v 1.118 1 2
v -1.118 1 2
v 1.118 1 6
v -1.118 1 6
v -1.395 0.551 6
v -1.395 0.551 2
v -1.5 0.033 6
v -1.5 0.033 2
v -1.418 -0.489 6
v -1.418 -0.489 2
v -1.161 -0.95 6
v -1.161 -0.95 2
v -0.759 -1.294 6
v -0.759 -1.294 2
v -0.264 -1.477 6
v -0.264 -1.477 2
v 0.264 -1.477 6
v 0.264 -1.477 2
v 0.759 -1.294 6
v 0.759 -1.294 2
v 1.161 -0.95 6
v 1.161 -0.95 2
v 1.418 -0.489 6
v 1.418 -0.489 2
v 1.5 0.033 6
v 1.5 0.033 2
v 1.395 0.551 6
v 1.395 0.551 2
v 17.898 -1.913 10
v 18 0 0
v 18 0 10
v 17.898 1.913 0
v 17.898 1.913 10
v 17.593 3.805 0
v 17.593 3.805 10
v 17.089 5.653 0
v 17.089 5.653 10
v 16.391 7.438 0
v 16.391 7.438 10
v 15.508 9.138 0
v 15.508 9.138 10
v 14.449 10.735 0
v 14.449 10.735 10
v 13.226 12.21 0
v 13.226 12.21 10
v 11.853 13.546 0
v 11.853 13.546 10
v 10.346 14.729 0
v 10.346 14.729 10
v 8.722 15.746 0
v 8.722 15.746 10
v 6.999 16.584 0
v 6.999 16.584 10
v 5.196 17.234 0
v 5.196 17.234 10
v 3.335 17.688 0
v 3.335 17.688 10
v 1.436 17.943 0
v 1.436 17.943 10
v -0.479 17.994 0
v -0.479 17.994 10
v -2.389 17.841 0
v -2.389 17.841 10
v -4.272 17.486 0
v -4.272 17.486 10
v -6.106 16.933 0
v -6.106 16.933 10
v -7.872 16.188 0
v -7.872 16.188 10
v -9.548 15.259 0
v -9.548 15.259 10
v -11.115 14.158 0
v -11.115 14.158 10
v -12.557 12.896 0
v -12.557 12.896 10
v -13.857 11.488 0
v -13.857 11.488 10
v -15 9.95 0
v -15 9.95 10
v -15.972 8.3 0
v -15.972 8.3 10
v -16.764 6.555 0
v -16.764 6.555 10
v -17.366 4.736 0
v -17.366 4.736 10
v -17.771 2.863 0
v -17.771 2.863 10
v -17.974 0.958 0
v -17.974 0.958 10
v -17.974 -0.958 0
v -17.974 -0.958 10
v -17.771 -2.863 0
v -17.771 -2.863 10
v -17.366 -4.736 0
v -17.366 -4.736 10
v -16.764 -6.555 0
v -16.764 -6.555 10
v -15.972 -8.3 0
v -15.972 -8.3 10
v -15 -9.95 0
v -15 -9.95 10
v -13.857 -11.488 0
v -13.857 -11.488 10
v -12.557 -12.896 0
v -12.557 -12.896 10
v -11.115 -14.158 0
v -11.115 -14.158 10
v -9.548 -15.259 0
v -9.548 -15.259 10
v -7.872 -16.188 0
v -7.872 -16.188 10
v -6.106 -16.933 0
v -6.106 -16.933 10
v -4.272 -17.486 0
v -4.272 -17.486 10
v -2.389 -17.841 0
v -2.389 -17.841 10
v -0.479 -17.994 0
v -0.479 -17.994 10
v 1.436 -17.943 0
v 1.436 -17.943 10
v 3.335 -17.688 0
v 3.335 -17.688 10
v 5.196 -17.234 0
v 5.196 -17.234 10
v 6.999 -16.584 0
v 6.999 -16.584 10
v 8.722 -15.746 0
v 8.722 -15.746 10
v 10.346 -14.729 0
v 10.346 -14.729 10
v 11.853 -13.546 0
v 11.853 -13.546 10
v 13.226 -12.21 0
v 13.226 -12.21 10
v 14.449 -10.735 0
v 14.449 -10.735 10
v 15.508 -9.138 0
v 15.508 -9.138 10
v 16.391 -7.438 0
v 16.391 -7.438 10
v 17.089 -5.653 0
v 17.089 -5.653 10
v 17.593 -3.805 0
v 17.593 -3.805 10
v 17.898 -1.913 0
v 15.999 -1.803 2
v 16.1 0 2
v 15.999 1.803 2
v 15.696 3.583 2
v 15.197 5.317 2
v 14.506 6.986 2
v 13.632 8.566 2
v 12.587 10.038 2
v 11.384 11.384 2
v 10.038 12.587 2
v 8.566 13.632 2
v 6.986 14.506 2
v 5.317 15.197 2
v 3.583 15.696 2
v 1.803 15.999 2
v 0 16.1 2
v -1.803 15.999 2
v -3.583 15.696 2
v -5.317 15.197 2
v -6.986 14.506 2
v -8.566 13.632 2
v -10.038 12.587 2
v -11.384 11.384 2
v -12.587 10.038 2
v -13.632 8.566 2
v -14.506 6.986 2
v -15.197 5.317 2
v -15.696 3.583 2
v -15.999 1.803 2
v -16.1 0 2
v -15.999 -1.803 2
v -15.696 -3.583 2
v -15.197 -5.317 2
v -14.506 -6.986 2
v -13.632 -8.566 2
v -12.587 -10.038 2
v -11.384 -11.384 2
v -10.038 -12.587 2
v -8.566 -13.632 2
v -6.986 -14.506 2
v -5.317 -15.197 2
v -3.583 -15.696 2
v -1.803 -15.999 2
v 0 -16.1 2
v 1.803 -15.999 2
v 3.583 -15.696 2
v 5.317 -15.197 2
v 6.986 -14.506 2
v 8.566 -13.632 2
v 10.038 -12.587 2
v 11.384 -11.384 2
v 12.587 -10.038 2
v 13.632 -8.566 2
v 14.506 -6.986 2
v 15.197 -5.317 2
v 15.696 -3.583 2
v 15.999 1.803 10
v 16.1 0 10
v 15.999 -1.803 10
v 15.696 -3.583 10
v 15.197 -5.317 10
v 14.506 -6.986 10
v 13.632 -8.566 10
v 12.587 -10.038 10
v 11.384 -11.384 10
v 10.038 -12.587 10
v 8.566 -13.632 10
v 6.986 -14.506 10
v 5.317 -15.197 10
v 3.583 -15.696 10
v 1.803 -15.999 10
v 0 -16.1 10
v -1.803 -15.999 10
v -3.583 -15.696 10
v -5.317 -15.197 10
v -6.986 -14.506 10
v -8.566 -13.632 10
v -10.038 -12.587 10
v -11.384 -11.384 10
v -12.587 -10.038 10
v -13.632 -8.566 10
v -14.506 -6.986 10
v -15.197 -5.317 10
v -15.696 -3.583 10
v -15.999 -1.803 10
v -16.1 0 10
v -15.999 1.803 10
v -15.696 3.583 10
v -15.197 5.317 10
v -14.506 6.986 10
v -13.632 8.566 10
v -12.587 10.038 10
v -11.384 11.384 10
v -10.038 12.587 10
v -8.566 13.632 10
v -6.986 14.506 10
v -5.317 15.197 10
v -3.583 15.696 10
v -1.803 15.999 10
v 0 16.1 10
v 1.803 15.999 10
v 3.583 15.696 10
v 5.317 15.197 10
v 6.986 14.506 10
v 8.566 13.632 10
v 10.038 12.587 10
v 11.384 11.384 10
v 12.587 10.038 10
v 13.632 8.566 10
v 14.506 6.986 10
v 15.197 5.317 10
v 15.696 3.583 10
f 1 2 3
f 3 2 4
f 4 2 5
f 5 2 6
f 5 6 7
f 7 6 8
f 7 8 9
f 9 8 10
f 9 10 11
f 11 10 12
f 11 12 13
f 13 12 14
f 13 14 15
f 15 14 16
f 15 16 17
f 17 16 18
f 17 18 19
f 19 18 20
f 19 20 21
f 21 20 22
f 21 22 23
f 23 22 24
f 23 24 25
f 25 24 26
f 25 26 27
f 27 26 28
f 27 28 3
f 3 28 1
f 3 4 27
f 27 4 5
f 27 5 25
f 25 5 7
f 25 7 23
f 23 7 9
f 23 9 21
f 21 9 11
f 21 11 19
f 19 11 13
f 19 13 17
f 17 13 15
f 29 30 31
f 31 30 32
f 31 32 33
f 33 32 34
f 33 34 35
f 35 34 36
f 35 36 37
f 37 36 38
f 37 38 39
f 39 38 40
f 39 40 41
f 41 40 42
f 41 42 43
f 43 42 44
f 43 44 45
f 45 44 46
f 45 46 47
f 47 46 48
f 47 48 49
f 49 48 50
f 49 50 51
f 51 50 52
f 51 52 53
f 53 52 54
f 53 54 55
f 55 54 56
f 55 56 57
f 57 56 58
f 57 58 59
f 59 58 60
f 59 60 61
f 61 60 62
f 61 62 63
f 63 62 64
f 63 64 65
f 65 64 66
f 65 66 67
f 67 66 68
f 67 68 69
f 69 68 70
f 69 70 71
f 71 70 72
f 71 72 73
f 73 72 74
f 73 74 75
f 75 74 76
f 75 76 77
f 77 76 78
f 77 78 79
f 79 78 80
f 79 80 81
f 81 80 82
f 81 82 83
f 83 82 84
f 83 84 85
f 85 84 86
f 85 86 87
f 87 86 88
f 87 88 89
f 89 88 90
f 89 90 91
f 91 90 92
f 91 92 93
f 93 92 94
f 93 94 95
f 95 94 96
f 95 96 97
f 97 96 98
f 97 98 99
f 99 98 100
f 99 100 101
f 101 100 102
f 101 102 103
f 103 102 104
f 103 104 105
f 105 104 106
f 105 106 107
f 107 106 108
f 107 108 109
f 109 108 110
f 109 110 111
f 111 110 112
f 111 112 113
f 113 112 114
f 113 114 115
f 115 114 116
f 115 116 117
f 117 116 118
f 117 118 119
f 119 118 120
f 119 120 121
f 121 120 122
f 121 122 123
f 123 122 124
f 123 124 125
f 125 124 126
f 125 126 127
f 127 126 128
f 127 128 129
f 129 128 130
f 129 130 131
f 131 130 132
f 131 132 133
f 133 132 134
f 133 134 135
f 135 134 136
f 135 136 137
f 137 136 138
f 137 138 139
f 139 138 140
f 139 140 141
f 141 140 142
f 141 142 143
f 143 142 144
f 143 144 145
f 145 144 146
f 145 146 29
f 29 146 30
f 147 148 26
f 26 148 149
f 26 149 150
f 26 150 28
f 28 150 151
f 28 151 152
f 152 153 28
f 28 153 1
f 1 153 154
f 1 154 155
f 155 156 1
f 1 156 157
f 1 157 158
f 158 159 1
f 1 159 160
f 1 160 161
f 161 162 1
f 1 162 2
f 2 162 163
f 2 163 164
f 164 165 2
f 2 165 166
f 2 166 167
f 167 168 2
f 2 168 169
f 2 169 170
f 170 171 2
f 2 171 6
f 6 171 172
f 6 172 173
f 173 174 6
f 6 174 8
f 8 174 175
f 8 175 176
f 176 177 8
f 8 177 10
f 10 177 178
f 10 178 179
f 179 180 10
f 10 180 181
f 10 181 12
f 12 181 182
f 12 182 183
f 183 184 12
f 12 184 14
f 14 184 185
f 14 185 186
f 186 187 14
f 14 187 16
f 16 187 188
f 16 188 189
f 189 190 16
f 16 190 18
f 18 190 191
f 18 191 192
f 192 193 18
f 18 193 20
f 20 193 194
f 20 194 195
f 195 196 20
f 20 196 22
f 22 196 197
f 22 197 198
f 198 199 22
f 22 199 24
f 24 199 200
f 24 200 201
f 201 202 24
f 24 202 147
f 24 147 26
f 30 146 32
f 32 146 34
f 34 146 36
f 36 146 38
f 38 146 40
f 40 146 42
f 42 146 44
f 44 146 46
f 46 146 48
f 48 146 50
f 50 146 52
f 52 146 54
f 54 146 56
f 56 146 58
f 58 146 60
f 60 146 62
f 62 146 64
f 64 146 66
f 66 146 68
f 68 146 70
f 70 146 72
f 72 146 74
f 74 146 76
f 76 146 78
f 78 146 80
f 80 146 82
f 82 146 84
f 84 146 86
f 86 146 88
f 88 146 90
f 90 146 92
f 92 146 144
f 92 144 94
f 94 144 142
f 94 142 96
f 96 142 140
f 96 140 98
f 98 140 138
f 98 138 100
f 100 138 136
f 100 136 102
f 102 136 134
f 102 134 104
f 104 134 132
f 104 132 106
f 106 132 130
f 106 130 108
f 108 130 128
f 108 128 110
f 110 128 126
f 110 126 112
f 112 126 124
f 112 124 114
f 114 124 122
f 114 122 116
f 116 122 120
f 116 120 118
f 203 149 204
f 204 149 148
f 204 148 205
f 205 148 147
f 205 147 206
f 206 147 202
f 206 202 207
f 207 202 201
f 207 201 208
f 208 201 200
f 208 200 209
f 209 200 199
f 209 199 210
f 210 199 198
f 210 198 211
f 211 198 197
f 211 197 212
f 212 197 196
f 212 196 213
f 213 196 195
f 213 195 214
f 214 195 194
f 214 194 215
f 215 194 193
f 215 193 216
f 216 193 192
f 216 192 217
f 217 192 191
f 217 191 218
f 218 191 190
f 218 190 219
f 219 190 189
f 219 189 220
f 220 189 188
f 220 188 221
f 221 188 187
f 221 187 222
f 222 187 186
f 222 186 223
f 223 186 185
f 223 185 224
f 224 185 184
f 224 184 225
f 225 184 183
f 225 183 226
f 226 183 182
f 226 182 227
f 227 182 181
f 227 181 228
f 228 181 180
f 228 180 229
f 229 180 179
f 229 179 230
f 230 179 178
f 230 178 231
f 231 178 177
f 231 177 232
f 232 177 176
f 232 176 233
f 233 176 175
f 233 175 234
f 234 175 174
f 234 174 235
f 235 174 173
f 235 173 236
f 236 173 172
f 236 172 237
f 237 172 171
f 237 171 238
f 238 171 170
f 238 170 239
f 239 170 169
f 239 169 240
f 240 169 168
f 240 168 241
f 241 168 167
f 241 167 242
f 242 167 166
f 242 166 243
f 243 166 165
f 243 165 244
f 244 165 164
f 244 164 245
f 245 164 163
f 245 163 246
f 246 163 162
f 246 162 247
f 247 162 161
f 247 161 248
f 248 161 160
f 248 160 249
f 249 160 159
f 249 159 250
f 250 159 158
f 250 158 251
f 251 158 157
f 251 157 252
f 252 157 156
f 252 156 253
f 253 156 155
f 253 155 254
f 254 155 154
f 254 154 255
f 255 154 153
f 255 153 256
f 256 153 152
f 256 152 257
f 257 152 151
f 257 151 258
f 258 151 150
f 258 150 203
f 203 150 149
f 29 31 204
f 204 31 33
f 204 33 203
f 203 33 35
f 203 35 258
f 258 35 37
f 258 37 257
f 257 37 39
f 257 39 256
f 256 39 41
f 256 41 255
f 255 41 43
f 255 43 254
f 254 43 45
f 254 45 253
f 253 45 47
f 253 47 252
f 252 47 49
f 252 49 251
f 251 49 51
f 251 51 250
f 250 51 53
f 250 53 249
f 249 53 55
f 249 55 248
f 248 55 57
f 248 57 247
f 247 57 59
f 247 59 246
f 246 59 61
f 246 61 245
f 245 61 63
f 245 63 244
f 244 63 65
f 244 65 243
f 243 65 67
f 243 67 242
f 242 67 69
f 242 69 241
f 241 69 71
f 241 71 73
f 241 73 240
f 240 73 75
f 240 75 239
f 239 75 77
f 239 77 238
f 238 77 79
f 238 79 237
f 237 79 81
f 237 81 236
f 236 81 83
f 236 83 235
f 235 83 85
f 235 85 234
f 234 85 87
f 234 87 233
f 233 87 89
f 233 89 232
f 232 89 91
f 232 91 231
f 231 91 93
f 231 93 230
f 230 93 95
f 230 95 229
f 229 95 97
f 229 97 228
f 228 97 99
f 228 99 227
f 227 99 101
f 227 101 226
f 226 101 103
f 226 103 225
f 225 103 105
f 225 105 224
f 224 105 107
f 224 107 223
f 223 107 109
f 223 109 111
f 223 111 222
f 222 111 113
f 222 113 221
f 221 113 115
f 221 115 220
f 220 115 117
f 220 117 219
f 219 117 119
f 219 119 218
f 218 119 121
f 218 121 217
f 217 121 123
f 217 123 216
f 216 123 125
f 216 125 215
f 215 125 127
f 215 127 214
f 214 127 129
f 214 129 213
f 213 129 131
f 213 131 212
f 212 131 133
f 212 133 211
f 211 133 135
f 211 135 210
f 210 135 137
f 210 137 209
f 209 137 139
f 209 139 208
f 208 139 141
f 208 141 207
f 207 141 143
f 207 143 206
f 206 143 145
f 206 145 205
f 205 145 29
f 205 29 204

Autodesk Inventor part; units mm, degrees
ref_plane "YZ Plane" through (0, 0, 0) normal (1, 0, 0) x (0, 1, 0)
ref_plane "XZ Plane" through (0, 0, 0) normal (0, 1, 0) x (-1, 0, 0)
ref_plane "XY Plane" through (0, 0, 0) normal (0, 0, 1) x (1, 0, 0)
sketch "Szkic1" plane through (0, 0, 0) normal (0, 0, 1) x (1, 0, 0)
  circle A0 centre (0, 0) radius 18
  dimension "d0" = 36
extrude "Wyciągnięcie proste1" add sketch "Szkic1" along normal blind 2
sketch "Szkic2" plane through (0, 0, 2) normal (0, 0, 1) x (1, 0, 0)
  circle A0 centre (0, 0) radius 1.5
  line L0 (0, 25.2) -> (0, -25.2) projected
  line L1 (-25.2, 0) -> (25.2, 0) projected
  line L2 (-1.118, 1) -> (1.118, 1)
  circle A1 centre (0, 0) radius 18 projected
  dimension "d3" = 3
  dimension "d4" = 1
extrude "Wyciągnięcie proste2" add sketch "Szkic2" along normal blind 4 contours L1 L0 L2 A0 | A0 L0 L1 | A0 L1 L0 | L1 A0 L2 L0
sketch "Szkic3" plane through (0, 0, 2) normal (0, 0, 1) x (1, 0, 0)
  line L0 (-1.118, 1) -> (1.118, 1) projected
  arc A0 (-1.118, 1) -> (1.118, 1) centre (0, 0) ccw projected
  circle A1 centre (0, 0) radius 18 projected
  circle A2 centre (0, 0) radius 16.1
  dimension "d8" = 32.2
extrude "Wyciągnięcie proste3" add sketch "Szkic3" along normal blind 8 contours A1
properties part number "forma_do_kół"
